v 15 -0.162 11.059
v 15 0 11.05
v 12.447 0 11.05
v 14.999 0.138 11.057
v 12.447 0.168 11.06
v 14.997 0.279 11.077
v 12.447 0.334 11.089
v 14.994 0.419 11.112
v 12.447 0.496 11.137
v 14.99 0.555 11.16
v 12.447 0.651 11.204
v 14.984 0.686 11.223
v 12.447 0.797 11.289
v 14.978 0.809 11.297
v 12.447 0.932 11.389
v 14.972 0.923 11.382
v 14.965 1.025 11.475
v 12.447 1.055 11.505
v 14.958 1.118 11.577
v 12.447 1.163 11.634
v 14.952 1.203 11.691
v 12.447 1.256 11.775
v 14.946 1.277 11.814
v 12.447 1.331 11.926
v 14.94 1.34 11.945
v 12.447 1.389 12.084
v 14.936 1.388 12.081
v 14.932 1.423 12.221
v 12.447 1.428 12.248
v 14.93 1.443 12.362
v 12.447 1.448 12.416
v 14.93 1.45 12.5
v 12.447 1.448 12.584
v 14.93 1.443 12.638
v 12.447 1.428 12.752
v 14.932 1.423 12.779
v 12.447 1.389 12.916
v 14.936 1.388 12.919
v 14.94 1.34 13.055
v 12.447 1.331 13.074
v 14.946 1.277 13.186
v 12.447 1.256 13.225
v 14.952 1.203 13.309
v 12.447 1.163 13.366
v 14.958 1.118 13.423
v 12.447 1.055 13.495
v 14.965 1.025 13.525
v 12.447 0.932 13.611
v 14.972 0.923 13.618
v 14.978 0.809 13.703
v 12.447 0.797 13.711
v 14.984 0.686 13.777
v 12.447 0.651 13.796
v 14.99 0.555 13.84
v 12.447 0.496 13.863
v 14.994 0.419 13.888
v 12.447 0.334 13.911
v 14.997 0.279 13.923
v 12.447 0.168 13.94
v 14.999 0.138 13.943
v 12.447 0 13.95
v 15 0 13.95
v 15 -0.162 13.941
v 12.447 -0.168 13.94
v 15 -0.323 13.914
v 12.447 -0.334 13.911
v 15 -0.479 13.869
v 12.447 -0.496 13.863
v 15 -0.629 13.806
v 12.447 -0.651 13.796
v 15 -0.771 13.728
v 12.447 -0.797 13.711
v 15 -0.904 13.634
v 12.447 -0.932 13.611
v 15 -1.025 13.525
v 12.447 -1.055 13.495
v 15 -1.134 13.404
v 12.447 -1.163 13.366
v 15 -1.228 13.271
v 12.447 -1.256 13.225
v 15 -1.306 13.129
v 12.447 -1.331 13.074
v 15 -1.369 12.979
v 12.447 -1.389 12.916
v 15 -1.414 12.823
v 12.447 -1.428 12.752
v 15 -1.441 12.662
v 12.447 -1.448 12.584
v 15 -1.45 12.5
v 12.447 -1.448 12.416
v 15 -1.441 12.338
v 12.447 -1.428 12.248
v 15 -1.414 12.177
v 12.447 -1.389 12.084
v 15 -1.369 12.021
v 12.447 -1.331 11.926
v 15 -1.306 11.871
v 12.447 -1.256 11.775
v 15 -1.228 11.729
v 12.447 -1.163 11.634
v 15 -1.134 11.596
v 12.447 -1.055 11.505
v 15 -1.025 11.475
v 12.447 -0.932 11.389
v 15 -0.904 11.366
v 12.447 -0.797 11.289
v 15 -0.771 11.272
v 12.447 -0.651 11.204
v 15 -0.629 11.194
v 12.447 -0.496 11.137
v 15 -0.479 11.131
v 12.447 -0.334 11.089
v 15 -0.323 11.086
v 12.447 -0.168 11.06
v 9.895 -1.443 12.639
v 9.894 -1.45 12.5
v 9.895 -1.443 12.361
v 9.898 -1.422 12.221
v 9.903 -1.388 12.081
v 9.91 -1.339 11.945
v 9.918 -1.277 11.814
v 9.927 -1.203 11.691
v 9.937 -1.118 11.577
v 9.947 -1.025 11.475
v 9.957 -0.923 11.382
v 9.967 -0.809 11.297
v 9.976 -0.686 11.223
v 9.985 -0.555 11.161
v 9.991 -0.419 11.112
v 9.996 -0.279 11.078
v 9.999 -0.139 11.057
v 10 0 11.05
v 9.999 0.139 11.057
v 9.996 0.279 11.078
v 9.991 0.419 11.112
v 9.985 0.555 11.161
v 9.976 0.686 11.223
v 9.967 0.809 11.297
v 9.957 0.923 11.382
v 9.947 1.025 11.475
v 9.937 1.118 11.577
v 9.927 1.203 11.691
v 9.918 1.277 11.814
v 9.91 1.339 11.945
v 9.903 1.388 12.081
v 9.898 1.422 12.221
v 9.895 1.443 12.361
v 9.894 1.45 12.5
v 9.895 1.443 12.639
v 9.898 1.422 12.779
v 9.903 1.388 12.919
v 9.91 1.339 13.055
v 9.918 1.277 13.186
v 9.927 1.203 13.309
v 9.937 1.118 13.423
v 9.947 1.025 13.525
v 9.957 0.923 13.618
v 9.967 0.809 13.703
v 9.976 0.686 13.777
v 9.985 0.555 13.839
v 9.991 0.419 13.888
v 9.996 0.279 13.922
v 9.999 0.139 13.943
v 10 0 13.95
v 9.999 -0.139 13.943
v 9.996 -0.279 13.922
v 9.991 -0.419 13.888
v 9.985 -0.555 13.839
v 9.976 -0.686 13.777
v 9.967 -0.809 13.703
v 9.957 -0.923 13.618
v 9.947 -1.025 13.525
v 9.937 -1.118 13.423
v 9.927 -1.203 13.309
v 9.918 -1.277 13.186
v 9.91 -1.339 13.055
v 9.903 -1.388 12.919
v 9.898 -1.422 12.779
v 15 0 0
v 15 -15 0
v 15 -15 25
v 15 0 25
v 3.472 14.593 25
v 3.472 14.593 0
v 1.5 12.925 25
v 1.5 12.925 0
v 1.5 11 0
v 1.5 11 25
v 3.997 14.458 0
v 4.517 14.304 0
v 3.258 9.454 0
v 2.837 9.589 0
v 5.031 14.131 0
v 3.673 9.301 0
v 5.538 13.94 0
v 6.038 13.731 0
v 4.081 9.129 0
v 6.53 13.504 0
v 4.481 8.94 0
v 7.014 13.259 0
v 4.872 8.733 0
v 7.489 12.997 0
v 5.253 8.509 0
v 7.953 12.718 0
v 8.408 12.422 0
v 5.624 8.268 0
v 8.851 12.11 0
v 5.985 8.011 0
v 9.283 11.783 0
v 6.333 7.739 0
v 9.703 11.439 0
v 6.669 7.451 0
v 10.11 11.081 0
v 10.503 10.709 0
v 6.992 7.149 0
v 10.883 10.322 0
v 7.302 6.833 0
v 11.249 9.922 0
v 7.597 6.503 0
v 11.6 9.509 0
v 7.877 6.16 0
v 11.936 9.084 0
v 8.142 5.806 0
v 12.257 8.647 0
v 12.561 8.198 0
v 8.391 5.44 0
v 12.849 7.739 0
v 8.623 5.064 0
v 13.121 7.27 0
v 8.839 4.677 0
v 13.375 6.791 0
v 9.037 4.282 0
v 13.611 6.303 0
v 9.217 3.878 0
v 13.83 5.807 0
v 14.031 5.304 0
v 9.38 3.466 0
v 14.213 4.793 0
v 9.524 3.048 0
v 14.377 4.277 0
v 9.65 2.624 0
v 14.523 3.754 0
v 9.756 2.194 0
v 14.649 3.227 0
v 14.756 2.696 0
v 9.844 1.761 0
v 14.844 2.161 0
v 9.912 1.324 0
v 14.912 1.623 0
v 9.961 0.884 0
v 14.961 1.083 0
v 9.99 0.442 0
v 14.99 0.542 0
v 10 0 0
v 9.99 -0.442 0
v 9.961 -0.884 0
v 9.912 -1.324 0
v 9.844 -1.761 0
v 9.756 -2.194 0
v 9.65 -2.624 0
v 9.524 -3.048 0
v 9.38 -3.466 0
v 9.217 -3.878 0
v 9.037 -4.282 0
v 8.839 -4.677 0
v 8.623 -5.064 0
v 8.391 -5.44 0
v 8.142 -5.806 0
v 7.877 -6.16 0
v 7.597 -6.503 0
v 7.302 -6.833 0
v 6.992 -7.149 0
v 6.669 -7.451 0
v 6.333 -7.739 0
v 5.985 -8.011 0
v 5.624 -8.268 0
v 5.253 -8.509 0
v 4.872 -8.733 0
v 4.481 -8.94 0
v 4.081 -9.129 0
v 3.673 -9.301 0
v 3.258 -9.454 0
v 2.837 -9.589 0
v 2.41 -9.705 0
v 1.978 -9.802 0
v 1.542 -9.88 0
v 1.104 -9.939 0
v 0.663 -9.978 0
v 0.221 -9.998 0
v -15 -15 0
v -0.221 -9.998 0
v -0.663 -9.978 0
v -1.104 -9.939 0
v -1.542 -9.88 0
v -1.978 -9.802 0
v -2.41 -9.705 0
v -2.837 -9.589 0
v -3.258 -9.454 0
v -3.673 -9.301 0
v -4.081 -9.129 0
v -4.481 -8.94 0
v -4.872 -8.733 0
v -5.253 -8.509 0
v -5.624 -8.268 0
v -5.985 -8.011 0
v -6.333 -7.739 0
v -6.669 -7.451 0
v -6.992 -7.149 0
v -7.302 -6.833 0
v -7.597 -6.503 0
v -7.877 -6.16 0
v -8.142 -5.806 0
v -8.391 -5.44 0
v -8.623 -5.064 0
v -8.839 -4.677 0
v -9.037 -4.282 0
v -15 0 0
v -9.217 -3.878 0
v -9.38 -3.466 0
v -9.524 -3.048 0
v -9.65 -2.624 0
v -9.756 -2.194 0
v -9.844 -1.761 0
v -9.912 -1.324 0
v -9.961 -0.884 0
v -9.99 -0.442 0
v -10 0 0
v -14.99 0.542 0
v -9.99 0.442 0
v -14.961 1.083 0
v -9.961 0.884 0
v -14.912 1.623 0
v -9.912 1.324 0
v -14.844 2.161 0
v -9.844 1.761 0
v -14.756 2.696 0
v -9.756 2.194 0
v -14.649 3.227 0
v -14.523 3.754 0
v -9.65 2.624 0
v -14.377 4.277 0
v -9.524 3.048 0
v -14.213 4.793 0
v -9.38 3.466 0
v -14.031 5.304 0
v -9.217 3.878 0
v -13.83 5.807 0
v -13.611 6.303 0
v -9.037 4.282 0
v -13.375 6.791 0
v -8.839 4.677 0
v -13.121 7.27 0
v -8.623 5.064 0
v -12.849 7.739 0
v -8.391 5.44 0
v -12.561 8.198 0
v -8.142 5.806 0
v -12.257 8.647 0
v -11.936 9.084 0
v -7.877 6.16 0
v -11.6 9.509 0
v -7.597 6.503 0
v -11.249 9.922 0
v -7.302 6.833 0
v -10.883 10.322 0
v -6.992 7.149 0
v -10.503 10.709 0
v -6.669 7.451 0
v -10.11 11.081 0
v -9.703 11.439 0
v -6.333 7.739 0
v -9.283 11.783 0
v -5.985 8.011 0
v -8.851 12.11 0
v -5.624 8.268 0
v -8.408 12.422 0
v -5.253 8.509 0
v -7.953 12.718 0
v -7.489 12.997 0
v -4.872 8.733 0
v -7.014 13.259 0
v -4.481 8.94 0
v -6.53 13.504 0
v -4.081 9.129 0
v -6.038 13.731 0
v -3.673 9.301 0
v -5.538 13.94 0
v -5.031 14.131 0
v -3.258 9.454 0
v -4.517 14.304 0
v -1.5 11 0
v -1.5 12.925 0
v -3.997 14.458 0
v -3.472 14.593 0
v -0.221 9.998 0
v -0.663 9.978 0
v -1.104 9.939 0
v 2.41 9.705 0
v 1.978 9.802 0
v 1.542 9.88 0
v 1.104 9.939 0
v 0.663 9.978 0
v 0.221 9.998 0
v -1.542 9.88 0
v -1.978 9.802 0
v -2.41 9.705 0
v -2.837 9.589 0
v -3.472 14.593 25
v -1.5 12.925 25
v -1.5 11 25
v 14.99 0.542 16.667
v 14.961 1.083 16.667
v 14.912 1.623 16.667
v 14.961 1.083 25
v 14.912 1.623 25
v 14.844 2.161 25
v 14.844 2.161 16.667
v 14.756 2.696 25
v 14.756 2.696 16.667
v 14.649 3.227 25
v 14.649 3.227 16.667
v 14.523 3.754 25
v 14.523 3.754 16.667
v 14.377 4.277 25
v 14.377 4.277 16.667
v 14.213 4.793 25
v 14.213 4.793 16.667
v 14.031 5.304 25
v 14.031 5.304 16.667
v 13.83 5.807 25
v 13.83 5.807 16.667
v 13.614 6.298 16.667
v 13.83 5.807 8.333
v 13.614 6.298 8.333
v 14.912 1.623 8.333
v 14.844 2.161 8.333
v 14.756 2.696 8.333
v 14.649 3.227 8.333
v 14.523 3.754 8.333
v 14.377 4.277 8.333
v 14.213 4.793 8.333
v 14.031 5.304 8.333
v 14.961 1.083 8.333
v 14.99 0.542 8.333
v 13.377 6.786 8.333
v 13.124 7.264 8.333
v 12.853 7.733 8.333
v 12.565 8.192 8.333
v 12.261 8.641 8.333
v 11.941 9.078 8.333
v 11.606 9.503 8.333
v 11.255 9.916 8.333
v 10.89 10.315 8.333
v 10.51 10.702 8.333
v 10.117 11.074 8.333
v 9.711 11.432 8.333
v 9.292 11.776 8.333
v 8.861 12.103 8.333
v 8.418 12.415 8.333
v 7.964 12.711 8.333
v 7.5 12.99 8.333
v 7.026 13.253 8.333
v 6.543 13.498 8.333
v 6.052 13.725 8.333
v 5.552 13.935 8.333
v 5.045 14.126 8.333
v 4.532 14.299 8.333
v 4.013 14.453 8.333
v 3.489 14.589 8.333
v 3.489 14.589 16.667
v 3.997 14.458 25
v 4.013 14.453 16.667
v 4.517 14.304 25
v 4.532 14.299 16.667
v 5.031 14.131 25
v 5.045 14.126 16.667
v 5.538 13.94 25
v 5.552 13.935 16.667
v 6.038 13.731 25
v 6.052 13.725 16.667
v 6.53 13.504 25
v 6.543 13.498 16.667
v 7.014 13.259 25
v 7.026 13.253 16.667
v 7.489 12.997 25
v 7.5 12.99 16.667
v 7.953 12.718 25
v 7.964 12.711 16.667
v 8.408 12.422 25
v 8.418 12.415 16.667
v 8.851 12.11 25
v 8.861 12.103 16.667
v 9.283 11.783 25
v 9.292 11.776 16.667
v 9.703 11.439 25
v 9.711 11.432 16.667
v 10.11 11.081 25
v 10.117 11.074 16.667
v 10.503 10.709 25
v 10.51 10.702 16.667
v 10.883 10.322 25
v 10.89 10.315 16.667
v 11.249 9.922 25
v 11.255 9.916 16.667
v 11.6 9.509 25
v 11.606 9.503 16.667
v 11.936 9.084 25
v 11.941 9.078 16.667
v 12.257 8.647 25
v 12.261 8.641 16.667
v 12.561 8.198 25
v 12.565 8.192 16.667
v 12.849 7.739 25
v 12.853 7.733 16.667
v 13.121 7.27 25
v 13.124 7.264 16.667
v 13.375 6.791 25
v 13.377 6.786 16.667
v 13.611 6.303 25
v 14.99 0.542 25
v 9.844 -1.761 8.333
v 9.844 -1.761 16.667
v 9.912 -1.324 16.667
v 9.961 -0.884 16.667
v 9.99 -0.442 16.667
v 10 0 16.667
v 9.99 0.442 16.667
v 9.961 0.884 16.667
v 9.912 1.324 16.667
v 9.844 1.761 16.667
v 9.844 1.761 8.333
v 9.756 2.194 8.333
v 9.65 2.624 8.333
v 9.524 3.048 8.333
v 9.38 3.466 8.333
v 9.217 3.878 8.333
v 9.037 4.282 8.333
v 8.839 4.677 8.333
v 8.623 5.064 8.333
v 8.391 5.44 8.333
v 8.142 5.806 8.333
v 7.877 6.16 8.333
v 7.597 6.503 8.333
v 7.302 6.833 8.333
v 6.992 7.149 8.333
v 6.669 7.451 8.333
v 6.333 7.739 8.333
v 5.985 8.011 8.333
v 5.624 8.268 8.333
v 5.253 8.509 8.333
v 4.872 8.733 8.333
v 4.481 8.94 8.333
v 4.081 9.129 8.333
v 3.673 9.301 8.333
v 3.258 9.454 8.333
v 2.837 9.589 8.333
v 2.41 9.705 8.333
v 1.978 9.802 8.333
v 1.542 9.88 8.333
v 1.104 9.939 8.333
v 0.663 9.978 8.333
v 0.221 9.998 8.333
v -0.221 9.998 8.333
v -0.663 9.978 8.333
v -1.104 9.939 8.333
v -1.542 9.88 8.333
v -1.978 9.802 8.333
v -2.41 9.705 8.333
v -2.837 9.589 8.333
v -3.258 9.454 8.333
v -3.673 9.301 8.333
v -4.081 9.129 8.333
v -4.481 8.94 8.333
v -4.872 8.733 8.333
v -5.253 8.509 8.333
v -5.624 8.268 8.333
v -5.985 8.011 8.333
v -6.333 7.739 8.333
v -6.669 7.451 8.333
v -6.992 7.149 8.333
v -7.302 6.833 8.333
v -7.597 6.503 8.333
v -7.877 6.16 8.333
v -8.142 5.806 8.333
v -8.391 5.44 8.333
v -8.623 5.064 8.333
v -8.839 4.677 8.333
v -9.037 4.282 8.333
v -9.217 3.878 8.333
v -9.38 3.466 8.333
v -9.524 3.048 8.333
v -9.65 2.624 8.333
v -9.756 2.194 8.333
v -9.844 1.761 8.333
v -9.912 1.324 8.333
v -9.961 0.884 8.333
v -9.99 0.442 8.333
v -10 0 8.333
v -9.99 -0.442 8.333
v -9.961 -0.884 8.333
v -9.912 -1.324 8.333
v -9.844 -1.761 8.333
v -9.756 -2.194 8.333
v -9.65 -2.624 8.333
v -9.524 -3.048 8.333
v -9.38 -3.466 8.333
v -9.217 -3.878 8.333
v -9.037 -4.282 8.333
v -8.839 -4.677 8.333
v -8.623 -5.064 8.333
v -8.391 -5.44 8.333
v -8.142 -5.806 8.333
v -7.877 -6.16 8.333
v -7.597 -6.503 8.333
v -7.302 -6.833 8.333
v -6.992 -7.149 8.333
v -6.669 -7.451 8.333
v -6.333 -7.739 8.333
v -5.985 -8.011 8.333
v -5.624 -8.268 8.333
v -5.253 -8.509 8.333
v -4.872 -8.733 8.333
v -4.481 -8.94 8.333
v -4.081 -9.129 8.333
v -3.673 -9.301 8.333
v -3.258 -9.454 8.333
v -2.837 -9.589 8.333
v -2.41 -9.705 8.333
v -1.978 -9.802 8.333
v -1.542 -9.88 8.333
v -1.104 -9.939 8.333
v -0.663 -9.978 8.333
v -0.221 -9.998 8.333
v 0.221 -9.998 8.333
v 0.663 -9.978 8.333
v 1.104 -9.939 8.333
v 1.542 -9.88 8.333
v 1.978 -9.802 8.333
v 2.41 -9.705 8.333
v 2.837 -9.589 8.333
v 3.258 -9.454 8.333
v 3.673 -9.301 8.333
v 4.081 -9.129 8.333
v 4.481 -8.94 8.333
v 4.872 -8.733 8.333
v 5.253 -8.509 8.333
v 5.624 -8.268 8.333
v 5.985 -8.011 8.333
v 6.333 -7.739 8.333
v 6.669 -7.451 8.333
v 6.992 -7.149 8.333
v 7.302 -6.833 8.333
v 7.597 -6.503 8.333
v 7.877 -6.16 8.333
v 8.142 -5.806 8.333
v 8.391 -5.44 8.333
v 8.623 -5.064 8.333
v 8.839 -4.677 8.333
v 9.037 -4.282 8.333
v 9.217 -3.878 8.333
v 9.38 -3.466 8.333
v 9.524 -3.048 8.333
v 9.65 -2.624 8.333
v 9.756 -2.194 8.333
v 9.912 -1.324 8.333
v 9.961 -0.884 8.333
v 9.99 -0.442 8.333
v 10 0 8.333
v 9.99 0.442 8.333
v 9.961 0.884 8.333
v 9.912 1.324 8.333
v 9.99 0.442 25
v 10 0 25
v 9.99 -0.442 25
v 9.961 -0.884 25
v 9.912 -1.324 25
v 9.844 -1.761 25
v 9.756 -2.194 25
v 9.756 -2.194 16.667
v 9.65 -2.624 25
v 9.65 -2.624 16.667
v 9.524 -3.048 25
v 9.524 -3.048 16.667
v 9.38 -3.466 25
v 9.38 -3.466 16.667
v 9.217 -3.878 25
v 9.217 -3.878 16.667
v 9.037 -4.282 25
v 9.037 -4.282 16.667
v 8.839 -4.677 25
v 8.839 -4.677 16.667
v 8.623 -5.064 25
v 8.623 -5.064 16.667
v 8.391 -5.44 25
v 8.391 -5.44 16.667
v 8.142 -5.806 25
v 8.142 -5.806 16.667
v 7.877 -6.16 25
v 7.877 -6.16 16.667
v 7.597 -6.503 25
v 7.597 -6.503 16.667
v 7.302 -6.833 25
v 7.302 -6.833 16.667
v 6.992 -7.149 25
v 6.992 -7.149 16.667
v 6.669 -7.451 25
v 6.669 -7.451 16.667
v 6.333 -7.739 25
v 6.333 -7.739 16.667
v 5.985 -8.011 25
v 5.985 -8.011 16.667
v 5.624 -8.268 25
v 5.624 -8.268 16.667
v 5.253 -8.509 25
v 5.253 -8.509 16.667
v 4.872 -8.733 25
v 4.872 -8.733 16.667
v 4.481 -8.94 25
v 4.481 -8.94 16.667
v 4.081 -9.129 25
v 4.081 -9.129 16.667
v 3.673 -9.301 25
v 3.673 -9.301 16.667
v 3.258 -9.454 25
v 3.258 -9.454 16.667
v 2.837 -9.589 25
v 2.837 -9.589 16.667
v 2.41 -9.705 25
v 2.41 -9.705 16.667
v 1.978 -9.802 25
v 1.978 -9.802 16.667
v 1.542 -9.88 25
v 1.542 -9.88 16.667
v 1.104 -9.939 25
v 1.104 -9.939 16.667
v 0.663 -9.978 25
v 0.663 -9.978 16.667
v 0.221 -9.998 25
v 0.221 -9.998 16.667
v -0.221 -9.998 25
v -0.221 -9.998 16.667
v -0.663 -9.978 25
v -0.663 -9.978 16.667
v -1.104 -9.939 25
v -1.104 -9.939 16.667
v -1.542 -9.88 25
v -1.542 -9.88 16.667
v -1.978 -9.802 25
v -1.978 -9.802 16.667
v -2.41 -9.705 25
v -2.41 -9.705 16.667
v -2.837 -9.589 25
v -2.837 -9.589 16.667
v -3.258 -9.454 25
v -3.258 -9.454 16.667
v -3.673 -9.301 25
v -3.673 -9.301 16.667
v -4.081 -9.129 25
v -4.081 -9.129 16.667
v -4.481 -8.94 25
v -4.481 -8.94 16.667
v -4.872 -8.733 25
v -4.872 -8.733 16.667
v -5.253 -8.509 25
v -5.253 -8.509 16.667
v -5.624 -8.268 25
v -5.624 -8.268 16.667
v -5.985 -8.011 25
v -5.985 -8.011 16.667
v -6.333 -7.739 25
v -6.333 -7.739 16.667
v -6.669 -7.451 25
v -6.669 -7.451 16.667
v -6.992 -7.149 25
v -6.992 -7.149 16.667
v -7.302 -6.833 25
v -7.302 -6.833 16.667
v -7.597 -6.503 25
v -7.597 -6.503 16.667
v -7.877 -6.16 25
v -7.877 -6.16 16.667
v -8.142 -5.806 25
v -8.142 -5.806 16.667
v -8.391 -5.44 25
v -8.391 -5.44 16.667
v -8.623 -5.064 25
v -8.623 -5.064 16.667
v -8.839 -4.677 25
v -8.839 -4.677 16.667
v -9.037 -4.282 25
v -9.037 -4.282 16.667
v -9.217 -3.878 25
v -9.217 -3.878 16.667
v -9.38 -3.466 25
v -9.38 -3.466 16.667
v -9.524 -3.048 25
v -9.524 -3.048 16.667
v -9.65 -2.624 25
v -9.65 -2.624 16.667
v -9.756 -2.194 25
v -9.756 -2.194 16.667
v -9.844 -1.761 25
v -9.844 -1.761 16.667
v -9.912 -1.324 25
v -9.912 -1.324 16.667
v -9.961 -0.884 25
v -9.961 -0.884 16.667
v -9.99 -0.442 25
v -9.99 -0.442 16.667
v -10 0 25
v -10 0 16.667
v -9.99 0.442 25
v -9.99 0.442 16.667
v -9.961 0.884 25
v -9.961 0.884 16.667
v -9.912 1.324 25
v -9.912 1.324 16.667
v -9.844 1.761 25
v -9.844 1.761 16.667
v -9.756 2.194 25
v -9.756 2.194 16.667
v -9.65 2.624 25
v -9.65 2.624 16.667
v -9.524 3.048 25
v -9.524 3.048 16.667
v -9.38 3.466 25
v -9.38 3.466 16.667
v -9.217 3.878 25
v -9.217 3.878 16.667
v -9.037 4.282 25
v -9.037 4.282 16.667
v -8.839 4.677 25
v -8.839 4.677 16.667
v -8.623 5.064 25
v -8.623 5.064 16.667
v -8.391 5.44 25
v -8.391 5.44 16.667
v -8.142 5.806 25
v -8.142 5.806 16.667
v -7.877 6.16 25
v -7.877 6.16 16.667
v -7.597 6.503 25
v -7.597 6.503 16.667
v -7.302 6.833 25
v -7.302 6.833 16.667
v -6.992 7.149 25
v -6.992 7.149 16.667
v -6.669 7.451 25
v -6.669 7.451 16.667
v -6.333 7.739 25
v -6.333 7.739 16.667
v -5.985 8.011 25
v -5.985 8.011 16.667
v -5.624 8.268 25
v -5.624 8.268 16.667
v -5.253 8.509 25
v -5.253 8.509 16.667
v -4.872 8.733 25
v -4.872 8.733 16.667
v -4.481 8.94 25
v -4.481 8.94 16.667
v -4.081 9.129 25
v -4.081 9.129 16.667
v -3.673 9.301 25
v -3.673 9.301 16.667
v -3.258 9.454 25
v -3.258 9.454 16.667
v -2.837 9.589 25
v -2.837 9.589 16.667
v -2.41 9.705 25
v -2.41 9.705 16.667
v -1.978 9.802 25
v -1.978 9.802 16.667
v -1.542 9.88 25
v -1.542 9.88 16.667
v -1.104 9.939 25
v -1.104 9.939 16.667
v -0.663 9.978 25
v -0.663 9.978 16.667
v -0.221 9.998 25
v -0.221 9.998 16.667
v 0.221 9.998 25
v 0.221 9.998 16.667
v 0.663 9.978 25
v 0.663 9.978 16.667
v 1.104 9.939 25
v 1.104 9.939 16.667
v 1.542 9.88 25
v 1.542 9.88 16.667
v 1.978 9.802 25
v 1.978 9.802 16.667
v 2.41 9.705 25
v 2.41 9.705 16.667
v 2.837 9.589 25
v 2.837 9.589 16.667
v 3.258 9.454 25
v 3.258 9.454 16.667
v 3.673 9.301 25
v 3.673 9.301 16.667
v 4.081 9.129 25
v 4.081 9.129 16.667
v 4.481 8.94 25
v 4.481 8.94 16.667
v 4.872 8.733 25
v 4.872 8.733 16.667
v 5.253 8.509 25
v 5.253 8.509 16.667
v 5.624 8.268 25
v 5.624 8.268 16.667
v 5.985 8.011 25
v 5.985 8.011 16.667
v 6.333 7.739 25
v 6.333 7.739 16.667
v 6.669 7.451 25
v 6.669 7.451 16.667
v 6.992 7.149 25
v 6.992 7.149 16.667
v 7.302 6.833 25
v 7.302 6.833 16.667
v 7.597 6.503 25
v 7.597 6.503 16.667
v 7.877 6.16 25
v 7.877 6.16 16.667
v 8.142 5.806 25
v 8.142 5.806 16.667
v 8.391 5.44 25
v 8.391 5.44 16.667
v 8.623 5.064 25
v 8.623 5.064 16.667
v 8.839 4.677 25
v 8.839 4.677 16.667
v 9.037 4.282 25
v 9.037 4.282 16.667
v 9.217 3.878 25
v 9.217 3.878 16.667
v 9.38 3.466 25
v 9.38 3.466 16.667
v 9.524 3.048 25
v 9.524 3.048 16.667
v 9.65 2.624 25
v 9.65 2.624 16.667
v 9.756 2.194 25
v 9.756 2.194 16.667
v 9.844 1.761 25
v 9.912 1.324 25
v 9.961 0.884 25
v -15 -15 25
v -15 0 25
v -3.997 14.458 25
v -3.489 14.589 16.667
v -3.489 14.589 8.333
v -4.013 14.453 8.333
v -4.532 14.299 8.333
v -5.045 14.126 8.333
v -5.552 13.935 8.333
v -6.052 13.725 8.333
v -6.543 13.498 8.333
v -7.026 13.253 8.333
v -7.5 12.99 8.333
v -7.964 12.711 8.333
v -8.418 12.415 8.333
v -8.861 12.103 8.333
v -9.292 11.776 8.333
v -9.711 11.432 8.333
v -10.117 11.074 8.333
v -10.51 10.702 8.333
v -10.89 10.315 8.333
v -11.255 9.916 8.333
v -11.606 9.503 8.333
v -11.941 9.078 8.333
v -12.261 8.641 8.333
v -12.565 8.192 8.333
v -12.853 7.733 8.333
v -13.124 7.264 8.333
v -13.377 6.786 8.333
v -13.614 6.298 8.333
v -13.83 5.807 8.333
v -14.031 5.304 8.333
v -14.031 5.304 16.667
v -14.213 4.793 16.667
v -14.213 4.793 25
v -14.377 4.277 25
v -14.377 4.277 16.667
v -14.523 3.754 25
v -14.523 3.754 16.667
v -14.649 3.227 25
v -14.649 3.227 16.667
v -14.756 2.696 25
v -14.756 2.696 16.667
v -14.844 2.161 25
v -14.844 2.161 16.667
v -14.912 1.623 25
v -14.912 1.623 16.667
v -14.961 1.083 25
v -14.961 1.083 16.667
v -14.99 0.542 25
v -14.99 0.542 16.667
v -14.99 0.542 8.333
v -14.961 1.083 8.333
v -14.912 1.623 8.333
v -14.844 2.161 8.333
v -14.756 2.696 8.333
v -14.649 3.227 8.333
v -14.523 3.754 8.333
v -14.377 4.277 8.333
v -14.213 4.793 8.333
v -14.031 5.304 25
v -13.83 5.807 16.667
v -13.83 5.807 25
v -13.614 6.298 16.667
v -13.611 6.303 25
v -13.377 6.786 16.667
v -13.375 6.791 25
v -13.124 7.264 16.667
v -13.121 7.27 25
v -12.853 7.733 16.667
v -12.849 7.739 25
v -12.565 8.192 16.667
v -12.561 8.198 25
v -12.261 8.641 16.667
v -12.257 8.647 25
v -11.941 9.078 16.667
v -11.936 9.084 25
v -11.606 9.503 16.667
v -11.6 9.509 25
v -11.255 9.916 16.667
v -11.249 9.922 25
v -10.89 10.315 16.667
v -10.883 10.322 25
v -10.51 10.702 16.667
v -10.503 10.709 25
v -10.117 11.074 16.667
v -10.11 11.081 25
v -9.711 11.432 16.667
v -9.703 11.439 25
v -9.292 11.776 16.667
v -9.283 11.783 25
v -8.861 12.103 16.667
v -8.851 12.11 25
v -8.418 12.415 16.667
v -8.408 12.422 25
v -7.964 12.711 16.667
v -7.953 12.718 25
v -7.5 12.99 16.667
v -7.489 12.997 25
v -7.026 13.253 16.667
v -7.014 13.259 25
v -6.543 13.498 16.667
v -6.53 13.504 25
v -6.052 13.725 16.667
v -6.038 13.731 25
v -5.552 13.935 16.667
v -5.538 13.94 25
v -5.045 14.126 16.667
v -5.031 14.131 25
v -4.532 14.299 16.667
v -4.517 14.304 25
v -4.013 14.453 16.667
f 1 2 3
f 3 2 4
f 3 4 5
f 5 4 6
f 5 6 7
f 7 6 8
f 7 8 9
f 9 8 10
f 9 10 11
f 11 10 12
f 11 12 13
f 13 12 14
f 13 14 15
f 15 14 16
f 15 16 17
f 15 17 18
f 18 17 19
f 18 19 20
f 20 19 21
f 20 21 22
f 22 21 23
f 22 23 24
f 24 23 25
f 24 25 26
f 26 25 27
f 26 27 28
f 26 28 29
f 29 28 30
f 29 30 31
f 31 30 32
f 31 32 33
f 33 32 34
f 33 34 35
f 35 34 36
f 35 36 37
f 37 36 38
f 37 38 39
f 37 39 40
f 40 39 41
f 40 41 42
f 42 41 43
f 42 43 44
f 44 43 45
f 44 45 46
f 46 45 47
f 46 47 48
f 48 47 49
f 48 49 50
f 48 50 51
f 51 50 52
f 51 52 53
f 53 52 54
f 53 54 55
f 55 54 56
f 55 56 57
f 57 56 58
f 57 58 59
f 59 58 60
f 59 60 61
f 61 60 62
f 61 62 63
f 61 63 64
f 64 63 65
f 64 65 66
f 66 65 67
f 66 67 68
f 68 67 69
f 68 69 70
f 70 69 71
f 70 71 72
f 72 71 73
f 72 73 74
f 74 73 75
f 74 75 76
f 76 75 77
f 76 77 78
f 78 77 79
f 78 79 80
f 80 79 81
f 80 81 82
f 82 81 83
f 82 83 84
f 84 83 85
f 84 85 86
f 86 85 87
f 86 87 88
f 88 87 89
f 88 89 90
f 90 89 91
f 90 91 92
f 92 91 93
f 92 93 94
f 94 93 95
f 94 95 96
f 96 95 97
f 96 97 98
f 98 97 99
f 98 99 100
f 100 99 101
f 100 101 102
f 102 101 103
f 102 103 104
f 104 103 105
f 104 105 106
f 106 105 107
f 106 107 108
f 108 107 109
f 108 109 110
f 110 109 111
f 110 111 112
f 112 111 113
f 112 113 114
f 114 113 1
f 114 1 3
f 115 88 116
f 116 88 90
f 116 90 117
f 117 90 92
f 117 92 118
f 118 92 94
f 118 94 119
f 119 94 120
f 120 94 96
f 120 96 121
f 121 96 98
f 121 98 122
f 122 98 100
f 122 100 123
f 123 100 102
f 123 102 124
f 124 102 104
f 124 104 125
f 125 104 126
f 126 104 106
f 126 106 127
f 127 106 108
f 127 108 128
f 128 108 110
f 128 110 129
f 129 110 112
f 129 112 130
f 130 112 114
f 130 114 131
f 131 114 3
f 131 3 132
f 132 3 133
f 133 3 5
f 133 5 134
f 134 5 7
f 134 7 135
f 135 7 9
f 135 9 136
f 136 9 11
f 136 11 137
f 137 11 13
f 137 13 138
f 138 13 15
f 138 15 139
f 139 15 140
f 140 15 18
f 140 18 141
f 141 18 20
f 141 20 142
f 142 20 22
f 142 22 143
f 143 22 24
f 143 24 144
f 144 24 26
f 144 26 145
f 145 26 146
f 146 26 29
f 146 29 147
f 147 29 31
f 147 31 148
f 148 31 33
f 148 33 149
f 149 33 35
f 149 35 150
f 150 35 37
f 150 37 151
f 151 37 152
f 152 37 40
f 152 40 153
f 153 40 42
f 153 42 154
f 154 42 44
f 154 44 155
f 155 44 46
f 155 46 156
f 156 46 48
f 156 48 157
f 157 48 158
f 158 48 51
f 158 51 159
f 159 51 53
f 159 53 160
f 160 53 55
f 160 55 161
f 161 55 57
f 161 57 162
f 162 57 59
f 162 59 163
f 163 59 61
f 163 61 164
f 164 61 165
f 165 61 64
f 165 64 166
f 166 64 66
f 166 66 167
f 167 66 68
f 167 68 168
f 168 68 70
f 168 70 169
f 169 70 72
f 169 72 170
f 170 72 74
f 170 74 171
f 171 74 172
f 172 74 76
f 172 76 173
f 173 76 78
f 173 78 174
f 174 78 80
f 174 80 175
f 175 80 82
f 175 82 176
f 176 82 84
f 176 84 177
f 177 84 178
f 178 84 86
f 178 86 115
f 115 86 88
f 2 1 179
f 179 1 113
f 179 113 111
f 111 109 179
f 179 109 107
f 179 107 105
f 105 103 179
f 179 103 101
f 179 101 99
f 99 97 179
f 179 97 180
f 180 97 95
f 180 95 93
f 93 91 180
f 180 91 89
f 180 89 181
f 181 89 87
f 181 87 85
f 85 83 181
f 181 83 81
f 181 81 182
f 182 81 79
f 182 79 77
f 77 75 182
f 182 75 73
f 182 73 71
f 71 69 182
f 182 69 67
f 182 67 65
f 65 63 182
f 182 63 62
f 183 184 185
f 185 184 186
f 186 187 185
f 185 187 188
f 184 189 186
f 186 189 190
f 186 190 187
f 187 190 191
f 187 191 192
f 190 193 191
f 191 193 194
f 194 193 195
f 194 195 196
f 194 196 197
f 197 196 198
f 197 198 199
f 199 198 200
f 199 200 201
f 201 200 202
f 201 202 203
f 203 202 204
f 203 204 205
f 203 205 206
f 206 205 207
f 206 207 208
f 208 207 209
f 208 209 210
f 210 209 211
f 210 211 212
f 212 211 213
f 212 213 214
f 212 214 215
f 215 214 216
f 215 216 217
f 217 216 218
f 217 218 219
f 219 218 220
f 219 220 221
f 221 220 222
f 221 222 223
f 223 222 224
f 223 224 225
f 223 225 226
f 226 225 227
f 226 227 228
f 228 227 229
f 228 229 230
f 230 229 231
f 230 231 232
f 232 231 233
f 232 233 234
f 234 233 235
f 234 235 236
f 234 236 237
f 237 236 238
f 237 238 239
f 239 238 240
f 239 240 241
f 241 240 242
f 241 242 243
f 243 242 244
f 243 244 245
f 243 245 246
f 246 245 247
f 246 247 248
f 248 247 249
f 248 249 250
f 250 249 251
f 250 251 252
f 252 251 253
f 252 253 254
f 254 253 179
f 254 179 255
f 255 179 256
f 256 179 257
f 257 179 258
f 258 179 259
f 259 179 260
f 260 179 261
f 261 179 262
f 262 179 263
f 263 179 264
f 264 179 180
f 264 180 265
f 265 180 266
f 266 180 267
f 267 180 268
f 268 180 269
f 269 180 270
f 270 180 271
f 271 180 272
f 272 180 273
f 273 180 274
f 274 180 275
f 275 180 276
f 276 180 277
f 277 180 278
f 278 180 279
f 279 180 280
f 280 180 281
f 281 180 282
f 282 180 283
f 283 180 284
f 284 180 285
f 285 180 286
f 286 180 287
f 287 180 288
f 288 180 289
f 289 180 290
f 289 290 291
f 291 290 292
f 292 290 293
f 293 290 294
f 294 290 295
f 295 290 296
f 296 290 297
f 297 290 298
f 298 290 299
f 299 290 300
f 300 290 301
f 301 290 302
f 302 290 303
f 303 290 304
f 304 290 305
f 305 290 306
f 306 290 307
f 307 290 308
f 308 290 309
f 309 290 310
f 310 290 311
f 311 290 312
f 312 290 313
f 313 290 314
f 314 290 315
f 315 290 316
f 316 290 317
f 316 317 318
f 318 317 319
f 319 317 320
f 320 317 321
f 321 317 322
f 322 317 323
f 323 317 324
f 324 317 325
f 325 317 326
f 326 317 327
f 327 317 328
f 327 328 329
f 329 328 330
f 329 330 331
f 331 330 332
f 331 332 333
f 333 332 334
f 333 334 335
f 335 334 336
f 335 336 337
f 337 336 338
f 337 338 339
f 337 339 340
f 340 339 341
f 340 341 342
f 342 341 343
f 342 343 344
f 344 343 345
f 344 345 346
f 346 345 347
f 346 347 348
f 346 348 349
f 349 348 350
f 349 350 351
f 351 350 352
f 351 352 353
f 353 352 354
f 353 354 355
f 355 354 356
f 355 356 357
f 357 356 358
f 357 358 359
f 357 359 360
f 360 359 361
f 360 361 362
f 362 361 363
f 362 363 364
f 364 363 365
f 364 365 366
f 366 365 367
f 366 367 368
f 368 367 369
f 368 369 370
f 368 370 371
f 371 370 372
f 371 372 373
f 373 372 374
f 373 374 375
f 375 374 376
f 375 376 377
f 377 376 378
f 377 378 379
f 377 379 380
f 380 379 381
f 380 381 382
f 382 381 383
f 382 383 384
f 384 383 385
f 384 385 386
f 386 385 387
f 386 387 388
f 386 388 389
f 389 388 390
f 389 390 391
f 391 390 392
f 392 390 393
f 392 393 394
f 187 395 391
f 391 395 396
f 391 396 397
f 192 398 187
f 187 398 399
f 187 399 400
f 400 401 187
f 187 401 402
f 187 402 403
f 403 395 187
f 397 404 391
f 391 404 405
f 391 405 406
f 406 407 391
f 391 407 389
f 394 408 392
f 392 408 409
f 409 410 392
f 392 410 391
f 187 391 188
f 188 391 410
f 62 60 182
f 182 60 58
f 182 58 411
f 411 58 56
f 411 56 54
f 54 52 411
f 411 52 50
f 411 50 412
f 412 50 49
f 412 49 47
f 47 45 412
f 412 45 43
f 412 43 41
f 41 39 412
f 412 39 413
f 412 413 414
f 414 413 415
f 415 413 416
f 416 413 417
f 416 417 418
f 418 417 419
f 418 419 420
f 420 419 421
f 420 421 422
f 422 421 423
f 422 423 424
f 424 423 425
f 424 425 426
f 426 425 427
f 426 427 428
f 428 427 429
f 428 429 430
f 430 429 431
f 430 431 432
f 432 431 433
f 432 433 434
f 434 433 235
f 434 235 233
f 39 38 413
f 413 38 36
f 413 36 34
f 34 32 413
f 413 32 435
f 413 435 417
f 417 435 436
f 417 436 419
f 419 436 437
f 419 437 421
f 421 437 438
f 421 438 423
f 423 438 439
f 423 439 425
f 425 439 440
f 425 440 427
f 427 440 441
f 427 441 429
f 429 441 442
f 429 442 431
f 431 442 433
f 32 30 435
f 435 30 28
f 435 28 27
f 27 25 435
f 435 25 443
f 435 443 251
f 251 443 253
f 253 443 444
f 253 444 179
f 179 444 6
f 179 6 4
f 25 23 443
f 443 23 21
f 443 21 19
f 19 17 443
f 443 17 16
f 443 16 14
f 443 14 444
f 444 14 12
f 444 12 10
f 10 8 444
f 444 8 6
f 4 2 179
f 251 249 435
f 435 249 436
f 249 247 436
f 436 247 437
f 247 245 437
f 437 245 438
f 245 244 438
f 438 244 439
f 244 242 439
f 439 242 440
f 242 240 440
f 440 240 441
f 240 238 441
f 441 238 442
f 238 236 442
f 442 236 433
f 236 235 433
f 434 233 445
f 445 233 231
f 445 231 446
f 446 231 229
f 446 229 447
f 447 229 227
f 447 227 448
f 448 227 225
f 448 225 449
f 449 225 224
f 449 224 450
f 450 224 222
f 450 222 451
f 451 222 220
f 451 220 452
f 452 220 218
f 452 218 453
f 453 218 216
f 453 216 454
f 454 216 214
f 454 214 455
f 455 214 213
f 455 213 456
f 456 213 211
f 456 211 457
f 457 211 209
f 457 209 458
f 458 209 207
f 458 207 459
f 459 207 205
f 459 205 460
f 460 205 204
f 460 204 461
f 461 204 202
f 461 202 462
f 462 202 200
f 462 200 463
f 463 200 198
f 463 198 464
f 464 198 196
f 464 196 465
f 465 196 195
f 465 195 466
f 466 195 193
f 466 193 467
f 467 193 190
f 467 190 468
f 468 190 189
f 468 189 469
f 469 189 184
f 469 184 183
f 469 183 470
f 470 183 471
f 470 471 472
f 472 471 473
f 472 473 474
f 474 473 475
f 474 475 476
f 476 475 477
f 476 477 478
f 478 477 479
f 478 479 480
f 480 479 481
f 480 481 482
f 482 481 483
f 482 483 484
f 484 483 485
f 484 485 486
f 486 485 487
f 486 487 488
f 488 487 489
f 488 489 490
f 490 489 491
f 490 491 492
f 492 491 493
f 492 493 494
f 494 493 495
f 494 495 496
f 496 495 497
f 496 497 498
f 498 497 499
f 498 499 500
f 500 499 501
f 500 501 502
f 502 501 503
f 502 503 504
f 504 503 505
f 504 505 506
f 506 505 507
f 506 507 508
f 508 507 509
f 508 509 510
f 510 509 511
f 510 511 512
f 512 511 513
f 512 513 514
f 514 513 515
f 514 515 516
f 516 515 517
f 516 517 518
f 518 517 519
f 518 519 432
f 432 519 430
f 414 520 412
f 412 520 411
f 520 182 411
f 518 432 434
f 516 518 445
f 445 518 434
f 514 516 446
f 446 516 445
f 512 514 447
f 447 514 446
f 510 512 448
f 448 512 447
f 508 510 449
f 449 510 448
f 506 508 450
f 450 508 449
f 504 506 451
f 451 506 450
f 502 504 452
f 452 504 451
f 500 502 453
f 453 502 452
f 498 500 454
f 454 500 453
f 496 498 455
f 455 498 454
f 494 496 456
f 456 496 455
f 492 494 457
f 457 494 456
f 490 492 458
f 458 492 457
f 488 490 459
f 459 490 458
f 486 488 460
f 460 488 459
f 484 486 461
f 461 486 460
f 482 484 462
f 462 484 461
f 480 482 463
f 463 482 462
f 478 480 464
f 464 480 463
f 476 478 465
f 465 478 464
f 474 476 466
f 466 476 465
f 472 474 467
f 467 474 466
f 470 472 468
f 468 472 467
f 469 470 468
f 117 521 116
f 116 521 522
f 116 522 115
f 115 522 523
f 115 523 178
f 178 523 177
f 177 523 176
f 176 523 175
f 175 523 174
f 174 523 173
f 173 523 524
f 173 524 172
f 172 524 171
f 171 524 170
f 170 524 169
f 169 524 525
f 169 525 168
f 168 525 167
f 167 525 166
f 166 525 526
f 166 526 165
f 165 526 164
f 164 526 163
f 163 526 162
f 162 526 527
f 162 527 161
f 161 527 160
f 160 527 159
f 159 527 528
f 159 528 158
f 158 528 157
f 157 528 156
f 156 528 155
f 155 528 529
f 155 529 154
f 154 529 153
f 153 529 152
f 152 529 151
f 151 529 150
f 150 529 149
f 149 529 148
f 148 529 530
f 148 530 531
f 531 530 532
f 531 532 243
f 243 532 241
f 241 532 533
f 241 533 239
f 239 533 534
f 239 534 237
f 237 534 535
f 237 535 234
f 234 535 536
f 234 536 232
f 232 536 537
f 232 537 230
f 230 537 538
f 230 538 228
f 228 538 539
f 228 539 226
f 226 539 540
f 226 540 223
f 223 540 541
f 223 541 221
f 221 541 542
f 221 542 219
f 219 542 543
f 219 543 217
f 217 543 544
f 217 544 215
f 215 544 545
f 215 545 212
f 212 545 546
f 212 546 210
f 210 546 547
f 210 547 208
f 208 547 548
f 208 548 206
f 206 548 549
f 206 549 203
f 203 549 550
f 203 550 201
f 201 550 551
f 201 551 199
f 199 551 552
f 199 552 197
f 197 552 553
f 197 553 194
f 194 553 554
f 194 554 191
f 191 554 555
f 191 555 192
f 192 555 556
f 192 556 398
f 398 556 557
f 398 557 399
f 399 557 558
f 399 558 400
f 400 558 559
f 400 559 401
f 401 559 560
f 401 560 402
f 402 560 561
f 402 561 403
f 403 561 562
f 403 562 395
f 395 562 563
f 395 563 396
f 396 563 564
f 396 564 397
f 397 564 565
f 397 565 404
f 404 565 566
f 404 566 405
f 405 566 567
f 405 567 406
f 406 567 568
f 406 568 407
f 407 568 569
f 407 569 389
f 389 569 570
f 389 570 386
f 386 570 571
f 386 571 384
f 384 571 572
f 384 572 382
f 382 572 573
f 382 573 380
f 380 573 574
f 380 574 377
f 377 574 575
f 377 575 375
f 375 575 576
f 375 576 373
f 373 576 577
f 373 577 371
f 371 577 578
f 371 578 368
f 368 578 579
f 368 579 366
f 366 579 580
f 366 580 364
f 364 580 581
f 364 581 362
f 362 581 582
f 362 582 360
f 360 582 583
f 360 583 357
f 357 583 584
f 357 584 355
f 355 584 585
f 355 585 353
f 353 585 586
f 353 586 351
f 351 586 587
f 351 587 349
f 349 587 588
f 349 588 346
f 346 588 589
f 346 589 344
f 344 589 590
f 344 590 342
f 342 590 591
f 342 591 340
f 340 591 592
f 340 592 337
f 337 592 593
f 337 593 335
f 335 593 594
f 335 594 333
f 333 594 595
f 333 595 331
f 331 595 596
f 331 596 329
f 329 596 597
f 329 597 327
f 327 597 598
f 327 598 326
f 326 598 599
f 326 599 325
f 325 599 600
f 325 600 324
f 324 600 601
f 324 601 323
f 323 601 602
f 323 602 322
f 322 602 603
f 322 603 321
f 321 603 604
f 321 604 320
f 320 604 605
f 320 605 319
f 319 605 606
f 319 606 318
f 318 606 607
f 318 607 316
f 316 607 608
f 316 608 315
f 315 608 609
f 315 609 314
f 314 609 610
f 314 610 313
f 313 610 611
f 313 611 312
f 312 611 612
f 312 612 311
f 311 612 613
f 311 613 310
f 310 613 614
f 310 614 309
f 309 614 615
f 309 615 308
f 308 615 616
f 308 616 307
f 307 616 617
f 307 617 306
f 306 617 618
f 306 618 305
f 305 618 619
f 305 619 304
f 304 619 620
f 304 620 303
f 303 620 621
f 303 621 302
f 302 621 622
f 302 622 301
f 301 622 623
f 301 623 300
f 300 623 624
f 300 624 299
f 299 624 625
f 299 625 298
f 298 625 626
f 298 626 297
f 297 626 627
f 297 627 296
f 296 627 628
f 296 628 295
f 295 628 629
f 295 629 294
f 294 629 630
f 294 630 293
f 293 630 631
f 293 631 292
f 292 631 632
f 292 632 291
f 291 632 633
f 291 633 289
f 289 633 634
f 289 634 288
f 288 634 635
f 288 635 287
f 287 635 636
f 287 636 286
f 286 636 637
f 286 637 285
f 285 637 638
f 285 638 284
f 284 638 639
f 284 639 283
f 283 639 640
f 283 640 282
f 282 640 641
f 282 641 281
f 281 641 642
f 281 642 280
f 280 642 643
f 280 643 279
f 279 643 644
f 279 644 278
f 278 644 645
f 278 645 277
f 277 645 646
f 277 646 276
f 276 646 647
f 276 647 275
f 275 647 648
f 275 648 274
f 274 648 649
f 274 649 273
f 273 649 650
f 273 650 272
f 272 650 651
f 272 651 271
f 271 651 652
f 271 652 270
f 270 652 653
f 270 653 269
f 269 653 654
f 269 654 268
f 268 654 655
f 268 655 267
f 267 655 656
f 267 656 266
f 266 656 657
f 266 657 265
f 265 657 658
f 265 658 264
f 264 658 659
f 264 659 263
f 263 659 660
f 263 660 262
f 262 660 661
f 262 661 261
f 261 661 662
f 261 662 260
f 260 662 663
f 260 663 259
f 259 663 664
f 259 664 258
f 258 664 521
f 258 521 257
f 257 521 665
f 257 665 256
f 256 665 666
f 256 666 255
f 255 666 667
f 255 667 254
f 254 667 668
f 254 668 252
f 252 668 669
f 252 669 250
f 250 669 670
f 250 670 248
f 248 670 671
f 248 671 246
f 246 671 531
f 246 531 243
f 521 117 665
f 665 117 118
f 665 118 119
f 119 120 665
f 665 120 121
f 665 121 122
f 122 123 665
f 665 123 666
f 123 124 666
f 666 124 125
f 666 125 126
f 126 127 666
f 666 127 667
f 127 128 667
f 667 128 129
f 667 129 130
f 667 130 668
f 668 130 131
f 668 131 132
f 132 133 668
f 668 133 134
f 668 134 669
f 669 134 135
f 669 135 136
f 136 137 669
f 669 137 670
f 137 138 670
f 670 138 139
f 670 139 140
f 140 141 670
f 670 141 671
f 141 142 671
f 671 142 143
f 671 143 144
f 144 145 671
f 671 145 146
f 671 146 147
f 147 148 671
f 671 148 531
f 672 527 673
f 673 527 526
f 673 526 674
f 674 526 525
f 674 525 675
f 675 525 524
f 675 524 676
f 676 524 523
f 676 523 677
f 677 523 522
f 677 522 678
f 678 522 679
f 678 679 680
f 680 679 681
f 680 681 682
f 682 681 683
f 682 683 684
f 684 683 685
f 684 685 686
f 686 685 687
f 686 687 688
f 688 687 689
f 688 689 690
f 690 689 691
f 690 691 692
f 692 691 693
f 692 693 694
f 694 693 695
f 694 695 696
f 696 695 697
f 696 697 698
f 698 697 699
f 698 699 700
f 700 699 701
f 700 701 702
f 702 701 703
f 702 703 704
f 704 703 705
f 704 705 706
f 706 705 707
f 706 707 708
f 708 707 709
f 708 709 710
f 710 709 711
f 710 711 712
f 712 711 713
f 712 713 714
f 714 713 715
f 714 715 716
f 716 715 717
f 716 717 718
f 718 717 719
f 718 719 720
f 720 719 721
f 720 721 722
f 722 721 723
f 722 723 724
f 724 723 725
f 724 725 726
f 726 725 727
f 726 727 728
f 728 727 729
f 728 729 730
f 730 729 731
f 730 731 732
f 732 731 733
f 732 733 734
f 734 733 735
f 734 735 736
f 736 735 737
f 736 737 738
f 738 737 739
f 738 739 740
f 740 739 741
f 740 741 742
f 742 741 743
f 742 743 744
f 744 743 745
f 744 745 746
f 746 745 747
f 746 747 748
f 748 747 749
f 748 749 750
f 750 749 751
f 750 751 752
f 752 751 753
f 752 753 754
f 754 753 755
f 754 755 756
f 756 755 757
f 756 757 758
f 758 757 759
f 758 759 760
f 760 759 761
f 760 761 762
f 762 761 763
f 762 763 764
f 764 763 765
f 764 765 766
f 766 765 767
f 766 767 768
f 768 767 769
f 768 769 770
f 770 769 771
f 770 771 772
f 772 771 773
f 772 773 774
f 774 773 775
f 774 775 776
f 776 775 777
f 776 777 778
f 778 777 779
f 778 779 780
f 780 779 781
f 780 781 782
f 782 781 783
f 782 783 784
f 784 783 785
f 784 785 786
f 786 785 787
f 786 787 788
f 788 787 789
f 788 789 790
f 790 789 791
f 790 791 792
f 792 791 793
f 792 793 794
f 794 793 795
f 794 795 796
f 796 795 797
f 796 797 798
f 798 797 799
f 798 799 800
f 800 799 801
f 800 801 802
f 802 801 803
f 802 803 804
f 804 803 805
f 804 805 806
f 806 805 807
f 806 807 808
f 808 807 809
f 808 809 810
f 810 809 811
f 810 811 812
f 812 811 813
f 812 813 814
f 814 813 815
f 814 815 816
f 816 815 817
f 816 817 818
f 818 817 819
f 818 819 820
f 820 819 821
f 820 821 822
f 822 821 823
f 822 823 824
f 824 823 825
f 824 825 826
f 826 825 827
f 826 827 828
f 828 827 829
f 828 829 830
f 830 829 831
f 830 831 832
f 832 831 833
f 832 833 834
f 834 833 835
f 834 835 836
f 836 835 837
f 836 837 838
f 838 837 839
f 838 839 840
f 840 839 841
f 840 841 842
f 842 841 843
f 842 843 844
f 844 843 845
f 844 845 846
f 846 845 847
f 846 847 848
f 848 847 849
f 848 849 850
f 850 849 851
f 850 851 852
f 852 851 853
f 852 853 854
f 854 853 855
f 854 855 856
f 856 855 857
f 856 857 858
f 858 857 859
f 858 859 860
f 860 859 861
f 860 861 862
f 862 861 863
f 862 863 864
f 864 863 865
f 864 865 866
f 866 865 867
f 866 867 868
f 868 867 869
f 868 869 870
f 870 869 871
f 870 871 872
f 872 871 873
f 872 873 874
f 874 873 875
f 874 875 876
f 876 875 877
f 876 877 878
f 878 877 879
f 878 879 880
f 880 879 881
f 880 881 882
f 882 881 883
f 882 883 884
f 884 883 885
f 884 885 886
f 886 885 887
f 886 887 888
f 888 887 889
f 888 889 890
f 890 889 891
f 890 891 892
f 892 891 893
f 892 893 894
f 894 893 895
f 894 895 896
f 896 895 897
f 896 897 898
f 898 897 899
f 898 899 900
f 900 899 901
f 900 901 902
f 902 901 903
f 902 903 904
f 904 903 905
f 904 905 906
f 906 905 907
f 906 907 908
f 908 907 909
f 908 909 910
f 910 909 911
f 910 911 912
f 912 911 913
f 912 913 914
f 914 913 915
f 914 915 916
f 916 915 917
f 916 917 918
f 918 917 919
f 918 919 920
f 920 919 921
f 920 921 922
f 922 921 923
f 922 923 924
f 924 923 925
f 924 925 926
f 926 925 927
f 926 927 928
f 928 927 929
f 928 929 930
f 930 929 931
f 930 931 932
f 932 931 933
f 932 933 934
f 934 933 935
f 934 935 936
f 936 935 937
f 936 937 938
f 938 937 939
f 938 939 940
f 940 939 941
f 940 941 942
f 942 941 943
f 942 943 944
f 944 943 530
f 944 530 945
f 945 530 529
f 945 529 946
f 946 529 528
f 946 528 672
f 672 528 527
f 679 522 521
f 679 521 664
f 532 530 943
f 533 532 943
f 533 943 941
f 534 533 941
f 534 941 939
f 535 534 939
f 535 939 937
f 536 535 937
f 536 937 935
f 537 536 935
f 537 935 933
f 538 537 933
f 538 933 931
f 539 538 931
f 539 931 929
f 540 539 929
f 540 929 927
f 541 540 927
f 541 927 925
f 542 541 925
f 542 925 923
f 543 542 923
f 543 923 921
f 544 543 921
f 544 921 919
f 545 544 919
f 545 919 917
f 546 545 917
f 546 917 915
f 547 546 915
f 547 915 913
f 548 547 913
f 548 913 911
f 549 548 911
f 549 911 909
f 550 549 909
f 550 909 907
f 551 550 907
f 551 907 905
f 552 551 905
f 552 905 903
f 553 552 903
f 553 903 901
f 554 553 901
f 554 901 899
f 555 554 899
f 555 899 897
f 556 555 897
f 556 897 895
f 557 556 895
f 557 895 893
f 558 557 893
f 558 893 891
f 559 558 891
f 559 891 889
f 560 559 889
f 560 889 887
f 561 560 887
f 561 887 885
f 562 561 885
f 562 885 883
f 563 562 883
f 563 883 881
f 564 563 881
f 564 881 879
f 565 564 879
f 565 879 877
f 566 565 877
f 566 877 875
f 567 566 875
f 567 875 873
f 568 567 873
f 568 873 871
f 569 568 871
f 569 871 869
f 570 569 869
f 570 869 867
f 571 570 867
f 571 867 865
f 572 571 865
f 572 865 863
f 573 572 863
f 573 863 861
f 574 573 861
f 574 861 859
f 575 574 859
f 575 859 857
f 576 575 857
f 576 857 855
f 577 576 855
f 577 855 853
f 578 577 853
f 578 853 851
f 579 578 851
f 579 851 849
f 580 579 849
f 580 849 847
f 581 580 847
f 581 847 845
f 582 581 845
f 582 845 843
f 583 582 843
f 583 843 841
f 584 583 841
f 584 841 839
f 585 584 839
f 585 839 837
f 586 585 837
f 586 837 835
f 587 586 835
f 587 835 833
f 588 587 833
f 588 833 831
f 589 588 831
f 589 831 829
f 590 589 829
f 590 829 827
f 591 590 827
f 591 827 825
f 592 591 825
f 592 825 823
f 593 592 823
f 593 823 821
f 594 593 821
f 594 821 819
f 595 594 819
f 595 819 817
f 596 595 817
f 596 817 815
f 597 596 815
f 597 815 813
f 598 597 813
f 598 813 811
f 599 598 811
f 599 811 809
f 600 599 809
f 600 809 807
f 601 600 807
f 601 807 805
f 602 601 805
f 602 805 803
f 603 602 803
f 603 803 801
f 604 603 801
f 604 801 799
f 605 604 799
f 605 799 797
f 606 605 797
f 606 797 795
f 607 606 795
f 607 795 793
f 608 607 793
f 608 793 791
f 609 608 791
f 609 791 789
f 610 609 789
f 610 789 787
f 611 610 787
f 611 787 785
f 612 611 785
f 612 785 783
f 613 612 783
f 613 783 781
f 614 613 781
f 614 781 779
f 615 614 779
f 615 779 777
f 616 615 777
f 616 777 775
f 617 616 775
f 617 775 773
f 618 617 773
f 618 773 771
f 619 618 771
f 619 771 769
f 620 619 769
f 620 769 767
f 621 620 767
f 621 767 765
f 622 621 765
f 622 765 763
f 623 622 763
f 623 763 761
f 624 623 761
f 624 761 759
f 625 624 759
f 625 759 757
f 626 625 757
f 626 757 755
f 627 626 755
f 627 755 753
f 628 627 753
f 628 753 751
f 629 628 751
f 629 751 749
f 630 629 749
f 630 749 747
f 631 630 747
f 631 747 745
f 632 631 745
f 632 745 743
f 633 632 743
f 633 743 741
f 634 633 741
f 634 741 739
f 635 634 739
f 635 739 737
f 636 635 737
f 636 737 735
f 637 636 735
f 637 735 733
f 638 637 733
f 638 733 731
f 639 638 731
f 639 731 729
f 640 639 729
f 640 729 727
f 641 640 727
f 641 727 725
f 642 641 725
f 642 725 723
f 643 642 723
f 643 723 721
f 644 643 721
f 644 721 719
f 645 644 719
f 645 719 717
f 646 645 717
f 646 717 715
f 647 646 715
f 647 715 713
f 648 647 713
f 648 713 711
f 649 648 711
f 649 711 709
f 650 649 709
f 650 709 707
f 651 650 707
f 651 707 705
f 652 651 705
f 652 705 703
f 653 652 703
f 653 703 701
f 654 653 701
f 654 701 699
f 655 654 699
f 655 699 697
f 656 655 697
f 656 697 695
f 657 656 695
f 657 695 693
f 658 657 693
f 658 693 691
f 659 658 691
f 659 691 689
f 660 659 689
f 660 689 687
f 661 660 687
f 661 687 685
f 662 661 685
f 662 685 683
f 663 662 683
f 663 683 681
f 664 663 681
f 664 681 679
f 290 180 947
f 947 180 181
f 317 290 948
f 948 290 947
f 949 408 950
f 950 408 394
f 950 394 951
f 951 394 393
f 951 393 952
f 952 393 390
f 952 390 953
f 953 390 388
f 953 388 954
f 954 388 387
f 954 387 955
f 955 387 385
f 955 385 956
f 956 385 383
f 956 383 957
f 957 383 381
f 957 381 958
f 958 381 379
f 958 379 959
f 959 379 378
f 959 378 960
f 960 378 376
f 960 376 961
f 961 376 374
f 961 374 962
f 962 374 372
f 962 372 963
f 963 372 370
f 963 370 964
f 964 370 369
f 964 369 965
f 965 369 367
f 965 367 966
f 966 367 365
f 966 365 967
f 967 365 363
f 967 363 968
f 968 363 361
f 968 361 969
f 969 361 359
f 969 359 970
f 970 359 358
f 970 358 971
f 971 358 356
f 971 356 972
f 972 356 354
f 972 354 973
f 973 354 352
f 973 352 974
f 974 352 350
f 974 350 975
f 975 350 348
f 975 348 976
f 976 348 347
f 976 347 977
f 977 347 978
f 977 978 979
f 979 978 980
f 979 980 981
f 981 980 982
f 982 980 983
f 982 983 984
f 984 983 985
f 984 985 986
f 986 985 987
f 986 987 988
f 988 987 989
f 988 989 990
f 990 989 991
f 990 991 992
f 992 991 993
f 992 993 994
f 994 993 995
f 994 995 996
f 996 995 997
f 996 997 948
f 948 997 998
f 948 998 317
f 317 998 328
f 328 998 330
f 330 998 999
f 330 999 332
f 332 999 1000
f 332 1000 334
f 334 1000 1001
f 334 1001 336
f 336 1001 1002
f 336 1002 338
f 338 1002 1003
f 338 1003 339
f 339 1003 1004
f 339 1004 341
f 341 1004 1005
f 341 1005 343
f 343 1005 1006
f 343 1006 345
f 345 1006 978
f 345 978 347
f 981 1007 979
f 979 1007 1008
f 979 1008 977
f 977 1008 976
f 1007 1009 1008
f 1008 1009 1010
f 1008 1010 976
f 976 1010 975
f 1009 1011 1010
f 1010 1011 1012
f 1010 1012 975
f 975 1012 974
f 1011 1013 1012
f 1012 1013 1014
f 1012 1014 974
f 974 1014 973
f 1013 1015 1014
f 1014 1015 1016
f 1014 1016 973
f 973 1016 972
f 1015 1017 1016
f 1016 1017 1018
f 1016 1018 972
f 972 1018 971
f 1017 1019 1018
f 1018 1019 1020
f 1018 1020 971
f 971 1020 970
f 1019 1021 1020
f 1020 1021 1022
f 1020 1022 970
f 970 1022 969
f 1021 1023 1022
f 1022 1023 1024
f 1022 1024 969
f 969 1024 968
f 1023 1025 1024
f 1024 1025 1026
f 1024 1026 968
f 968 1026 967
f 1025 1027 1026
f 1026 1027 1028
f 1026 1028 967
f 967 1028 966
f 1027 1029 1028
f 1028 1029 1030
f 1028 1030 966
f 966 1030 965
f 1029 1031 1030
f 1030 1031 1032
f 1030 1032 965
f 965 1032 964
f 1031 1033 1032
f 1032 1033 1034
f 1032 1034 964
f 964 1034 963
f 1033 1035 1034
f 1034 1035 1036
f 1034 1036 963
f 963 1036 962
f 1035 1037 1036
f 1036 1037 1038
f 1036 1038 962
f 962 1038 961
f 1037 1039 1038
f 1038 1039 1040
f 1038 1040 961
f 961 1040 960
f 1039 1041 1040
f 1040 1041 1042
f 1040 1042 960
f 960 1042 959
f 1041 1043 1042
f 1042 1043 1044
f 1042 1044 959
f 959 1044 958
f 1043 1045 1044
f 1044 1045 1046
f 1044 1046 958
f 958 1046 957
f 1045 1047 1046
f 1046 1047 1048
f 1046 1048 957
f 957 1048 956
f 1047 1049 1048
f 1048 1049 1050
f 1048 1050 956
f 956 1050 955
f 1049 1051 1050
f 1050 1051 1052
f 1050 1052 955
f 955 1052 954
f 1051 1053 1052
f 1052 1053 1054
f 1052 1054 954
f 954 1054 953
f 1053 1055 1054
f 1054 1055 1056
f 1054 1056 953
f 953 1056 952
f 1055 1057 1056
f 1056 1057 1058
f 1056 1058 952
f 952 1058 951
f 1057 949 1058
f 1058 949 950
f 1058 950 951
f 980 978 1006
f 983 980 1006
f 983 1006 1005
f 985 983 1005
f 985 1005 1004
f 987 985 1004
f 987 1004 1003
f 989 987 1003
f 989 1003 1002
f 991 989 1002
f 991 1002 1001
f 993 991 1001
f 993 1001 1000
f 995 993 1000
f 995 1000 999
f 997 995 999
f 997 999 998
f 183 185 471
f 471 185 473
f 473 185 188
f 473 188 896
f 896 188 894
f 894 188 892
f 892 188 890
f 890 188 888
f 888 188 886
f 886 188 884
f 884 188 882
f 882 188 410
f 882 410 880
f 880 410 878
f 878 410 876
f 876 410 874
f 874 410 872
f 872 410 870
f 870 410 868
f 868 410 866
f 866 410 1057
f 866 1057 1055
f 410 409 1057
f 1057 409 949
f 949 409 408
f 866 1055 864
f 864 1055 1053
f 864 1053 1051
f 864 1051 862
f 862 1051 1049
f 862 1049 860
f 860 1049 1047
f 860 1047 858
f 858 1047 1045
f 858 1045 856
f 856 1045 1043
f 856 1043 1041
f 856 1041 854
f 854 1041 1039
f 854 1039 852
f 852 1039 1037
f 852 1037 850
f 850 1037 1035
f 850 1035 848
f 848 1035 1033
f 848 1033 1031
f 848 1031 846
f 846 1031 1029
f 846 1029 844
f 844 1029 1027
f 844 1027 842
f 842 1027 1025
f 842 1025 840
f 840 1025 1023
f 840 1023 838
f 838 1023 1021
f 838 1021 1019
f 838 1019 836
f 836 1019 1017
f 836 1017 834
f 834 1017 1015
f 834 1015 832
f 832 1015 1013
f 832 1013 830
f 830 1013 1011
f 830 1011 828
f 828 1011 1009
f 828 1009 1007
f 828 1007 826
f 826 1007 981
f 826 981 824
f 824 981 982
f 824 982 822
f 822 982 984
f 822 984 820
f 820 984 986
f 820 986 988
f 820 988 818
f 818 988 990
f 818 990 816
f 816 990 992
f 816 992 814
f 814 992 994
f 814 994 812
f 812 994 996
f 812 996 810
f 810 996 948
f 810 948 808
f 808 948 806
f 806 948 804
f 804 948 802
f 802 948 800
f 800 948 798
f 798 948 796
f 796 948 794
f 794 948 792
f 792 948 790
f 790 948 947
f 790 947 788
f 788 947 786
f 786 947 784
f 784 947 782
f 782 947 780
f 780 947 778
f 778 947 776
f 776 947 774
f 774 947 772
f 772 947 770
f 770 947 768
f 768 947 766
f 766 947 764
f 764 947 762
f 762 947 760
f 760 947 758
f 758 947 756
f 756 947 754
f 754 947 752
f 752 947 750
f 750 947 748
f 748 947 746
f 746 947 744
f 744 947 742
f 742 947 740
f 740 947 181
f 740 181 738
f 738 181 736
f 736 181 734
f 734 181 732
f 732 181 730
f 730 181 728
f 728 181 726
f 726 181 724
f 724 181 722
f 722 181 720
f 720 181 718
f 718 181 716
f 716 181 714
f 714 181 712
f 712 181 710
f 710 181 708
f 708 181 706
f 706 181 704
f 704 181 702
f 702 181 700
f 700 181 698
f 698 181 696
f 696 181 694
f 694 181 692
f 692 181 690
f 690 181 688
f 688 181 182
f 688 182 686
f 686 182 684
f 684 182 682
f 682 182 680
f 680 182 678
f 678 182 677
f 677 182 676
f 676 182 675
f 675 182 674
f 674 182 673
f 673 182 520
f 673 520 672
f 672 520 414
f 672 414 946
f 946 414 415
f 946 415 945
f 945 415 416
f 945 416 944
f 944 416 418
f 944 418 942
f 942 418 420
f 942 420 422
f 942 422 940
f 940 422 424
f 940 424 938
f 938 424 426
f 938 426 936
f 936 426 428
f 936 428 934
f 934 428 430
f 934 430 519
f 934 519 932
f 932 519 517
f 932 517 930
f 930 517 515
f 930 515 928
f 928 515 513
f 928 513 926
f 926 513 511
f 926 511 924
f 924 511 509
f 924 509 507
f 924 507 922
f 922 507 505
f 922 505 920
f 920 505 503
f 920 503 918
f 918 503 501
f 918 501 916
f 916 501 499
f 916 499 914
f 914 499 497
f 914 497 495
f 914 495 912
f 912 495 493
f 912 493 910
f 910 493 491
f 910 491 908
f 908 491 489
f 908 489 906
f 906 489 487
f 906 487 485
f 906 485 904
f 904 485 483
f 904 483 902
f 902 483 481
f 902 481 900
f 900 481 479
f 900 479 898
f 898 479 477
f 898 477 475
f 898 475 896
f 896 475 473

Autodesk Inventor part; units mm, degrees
ref_plane "YZ Plane" through (0, 0, 0) normal (1, 0, 0) x (0, 1, 0)
ref_plane "XZ Plane" through (0, 0, 0) normal (0, 1, 0) x (-1, 0, 0)
ref_plane "XY Plane" through (0, 0, 0) normal (0, 0, 1) x (1, 0, 0)
sketch "Skizze3" plane through (0, 0, 0) normal (0, 0, 1) x (1, 0, 0)
  circle A0 centre (0, 0) radius 10
  arc A1 (15, 0) -> (-15, 0) centre (0, 0) ccw
  line L0 (15, 0) -> (15, -15)
  line L1 (15, -15) -> (-15, -15)
  line L2 (-15, -15) -> (-15, 0)
  line L3 (-15, 15) -> (15, -15) construction
  line L4 (15, 15) -> (-15, -15) construction
extrude "Extrusion2" add sketch "Skizze3" along normal blind 25
sketch "Skizze4" plane through (0, 0, 25) normal (0, 0, 1) x (1, 0, 0)
  circle A0 centre (0, 0) radius 10 construction
  line L0 (15, -15) -> (15, 0) construction
  arc A1 (15, 0) -> (-15, 0) centre (0, 0) ccw construction
  line L1 (-15, 0) -> (-15, -15) construction
  line L2 (-15, -15) -> (15, -15) construction
  line L3 (-1.5, 19) -> (1.5, 19)
  line L4 (1.5, 19) -> (1.5, 11)
  line L5 (1.5, 11) -> (-1.5, 11)
  line L6 (-1.5, 11) -> (-1.5, 19)
  arc A2 (15, 0) -> (-15, 0) centre (0, 0) ccw projected
  line L7 (-1.5, 19) -> (1.5, 11) construction
  line L8 (1.5, 19) -> (-1.5, 11) construction
  point P0 (0, 15)
  dimension "d9" = 3
  dimension "d10" = 8
extrude "Extrusion3" cut sketch "Skizze4" against normal through all
chamfer "Fase1" distance 2 angle 45 2 edges at (-1.5, 14.9248, 12.5) (1.5, 14.9248, 12.5)
sketch "Skizze5" plane through (15, -15, 0) normal (1, 0, 0) x (0, 0, -1)
  line L0 (0, 15) -> (-25, 15) projected
  circle A0 centre (-12.5, 15) radius 1.45
  dimension "d16" = 2.9
extrude "Extrusion4" cut sketch "Skizze5" against normal blind 6
properties part number "pipe_ruler"
